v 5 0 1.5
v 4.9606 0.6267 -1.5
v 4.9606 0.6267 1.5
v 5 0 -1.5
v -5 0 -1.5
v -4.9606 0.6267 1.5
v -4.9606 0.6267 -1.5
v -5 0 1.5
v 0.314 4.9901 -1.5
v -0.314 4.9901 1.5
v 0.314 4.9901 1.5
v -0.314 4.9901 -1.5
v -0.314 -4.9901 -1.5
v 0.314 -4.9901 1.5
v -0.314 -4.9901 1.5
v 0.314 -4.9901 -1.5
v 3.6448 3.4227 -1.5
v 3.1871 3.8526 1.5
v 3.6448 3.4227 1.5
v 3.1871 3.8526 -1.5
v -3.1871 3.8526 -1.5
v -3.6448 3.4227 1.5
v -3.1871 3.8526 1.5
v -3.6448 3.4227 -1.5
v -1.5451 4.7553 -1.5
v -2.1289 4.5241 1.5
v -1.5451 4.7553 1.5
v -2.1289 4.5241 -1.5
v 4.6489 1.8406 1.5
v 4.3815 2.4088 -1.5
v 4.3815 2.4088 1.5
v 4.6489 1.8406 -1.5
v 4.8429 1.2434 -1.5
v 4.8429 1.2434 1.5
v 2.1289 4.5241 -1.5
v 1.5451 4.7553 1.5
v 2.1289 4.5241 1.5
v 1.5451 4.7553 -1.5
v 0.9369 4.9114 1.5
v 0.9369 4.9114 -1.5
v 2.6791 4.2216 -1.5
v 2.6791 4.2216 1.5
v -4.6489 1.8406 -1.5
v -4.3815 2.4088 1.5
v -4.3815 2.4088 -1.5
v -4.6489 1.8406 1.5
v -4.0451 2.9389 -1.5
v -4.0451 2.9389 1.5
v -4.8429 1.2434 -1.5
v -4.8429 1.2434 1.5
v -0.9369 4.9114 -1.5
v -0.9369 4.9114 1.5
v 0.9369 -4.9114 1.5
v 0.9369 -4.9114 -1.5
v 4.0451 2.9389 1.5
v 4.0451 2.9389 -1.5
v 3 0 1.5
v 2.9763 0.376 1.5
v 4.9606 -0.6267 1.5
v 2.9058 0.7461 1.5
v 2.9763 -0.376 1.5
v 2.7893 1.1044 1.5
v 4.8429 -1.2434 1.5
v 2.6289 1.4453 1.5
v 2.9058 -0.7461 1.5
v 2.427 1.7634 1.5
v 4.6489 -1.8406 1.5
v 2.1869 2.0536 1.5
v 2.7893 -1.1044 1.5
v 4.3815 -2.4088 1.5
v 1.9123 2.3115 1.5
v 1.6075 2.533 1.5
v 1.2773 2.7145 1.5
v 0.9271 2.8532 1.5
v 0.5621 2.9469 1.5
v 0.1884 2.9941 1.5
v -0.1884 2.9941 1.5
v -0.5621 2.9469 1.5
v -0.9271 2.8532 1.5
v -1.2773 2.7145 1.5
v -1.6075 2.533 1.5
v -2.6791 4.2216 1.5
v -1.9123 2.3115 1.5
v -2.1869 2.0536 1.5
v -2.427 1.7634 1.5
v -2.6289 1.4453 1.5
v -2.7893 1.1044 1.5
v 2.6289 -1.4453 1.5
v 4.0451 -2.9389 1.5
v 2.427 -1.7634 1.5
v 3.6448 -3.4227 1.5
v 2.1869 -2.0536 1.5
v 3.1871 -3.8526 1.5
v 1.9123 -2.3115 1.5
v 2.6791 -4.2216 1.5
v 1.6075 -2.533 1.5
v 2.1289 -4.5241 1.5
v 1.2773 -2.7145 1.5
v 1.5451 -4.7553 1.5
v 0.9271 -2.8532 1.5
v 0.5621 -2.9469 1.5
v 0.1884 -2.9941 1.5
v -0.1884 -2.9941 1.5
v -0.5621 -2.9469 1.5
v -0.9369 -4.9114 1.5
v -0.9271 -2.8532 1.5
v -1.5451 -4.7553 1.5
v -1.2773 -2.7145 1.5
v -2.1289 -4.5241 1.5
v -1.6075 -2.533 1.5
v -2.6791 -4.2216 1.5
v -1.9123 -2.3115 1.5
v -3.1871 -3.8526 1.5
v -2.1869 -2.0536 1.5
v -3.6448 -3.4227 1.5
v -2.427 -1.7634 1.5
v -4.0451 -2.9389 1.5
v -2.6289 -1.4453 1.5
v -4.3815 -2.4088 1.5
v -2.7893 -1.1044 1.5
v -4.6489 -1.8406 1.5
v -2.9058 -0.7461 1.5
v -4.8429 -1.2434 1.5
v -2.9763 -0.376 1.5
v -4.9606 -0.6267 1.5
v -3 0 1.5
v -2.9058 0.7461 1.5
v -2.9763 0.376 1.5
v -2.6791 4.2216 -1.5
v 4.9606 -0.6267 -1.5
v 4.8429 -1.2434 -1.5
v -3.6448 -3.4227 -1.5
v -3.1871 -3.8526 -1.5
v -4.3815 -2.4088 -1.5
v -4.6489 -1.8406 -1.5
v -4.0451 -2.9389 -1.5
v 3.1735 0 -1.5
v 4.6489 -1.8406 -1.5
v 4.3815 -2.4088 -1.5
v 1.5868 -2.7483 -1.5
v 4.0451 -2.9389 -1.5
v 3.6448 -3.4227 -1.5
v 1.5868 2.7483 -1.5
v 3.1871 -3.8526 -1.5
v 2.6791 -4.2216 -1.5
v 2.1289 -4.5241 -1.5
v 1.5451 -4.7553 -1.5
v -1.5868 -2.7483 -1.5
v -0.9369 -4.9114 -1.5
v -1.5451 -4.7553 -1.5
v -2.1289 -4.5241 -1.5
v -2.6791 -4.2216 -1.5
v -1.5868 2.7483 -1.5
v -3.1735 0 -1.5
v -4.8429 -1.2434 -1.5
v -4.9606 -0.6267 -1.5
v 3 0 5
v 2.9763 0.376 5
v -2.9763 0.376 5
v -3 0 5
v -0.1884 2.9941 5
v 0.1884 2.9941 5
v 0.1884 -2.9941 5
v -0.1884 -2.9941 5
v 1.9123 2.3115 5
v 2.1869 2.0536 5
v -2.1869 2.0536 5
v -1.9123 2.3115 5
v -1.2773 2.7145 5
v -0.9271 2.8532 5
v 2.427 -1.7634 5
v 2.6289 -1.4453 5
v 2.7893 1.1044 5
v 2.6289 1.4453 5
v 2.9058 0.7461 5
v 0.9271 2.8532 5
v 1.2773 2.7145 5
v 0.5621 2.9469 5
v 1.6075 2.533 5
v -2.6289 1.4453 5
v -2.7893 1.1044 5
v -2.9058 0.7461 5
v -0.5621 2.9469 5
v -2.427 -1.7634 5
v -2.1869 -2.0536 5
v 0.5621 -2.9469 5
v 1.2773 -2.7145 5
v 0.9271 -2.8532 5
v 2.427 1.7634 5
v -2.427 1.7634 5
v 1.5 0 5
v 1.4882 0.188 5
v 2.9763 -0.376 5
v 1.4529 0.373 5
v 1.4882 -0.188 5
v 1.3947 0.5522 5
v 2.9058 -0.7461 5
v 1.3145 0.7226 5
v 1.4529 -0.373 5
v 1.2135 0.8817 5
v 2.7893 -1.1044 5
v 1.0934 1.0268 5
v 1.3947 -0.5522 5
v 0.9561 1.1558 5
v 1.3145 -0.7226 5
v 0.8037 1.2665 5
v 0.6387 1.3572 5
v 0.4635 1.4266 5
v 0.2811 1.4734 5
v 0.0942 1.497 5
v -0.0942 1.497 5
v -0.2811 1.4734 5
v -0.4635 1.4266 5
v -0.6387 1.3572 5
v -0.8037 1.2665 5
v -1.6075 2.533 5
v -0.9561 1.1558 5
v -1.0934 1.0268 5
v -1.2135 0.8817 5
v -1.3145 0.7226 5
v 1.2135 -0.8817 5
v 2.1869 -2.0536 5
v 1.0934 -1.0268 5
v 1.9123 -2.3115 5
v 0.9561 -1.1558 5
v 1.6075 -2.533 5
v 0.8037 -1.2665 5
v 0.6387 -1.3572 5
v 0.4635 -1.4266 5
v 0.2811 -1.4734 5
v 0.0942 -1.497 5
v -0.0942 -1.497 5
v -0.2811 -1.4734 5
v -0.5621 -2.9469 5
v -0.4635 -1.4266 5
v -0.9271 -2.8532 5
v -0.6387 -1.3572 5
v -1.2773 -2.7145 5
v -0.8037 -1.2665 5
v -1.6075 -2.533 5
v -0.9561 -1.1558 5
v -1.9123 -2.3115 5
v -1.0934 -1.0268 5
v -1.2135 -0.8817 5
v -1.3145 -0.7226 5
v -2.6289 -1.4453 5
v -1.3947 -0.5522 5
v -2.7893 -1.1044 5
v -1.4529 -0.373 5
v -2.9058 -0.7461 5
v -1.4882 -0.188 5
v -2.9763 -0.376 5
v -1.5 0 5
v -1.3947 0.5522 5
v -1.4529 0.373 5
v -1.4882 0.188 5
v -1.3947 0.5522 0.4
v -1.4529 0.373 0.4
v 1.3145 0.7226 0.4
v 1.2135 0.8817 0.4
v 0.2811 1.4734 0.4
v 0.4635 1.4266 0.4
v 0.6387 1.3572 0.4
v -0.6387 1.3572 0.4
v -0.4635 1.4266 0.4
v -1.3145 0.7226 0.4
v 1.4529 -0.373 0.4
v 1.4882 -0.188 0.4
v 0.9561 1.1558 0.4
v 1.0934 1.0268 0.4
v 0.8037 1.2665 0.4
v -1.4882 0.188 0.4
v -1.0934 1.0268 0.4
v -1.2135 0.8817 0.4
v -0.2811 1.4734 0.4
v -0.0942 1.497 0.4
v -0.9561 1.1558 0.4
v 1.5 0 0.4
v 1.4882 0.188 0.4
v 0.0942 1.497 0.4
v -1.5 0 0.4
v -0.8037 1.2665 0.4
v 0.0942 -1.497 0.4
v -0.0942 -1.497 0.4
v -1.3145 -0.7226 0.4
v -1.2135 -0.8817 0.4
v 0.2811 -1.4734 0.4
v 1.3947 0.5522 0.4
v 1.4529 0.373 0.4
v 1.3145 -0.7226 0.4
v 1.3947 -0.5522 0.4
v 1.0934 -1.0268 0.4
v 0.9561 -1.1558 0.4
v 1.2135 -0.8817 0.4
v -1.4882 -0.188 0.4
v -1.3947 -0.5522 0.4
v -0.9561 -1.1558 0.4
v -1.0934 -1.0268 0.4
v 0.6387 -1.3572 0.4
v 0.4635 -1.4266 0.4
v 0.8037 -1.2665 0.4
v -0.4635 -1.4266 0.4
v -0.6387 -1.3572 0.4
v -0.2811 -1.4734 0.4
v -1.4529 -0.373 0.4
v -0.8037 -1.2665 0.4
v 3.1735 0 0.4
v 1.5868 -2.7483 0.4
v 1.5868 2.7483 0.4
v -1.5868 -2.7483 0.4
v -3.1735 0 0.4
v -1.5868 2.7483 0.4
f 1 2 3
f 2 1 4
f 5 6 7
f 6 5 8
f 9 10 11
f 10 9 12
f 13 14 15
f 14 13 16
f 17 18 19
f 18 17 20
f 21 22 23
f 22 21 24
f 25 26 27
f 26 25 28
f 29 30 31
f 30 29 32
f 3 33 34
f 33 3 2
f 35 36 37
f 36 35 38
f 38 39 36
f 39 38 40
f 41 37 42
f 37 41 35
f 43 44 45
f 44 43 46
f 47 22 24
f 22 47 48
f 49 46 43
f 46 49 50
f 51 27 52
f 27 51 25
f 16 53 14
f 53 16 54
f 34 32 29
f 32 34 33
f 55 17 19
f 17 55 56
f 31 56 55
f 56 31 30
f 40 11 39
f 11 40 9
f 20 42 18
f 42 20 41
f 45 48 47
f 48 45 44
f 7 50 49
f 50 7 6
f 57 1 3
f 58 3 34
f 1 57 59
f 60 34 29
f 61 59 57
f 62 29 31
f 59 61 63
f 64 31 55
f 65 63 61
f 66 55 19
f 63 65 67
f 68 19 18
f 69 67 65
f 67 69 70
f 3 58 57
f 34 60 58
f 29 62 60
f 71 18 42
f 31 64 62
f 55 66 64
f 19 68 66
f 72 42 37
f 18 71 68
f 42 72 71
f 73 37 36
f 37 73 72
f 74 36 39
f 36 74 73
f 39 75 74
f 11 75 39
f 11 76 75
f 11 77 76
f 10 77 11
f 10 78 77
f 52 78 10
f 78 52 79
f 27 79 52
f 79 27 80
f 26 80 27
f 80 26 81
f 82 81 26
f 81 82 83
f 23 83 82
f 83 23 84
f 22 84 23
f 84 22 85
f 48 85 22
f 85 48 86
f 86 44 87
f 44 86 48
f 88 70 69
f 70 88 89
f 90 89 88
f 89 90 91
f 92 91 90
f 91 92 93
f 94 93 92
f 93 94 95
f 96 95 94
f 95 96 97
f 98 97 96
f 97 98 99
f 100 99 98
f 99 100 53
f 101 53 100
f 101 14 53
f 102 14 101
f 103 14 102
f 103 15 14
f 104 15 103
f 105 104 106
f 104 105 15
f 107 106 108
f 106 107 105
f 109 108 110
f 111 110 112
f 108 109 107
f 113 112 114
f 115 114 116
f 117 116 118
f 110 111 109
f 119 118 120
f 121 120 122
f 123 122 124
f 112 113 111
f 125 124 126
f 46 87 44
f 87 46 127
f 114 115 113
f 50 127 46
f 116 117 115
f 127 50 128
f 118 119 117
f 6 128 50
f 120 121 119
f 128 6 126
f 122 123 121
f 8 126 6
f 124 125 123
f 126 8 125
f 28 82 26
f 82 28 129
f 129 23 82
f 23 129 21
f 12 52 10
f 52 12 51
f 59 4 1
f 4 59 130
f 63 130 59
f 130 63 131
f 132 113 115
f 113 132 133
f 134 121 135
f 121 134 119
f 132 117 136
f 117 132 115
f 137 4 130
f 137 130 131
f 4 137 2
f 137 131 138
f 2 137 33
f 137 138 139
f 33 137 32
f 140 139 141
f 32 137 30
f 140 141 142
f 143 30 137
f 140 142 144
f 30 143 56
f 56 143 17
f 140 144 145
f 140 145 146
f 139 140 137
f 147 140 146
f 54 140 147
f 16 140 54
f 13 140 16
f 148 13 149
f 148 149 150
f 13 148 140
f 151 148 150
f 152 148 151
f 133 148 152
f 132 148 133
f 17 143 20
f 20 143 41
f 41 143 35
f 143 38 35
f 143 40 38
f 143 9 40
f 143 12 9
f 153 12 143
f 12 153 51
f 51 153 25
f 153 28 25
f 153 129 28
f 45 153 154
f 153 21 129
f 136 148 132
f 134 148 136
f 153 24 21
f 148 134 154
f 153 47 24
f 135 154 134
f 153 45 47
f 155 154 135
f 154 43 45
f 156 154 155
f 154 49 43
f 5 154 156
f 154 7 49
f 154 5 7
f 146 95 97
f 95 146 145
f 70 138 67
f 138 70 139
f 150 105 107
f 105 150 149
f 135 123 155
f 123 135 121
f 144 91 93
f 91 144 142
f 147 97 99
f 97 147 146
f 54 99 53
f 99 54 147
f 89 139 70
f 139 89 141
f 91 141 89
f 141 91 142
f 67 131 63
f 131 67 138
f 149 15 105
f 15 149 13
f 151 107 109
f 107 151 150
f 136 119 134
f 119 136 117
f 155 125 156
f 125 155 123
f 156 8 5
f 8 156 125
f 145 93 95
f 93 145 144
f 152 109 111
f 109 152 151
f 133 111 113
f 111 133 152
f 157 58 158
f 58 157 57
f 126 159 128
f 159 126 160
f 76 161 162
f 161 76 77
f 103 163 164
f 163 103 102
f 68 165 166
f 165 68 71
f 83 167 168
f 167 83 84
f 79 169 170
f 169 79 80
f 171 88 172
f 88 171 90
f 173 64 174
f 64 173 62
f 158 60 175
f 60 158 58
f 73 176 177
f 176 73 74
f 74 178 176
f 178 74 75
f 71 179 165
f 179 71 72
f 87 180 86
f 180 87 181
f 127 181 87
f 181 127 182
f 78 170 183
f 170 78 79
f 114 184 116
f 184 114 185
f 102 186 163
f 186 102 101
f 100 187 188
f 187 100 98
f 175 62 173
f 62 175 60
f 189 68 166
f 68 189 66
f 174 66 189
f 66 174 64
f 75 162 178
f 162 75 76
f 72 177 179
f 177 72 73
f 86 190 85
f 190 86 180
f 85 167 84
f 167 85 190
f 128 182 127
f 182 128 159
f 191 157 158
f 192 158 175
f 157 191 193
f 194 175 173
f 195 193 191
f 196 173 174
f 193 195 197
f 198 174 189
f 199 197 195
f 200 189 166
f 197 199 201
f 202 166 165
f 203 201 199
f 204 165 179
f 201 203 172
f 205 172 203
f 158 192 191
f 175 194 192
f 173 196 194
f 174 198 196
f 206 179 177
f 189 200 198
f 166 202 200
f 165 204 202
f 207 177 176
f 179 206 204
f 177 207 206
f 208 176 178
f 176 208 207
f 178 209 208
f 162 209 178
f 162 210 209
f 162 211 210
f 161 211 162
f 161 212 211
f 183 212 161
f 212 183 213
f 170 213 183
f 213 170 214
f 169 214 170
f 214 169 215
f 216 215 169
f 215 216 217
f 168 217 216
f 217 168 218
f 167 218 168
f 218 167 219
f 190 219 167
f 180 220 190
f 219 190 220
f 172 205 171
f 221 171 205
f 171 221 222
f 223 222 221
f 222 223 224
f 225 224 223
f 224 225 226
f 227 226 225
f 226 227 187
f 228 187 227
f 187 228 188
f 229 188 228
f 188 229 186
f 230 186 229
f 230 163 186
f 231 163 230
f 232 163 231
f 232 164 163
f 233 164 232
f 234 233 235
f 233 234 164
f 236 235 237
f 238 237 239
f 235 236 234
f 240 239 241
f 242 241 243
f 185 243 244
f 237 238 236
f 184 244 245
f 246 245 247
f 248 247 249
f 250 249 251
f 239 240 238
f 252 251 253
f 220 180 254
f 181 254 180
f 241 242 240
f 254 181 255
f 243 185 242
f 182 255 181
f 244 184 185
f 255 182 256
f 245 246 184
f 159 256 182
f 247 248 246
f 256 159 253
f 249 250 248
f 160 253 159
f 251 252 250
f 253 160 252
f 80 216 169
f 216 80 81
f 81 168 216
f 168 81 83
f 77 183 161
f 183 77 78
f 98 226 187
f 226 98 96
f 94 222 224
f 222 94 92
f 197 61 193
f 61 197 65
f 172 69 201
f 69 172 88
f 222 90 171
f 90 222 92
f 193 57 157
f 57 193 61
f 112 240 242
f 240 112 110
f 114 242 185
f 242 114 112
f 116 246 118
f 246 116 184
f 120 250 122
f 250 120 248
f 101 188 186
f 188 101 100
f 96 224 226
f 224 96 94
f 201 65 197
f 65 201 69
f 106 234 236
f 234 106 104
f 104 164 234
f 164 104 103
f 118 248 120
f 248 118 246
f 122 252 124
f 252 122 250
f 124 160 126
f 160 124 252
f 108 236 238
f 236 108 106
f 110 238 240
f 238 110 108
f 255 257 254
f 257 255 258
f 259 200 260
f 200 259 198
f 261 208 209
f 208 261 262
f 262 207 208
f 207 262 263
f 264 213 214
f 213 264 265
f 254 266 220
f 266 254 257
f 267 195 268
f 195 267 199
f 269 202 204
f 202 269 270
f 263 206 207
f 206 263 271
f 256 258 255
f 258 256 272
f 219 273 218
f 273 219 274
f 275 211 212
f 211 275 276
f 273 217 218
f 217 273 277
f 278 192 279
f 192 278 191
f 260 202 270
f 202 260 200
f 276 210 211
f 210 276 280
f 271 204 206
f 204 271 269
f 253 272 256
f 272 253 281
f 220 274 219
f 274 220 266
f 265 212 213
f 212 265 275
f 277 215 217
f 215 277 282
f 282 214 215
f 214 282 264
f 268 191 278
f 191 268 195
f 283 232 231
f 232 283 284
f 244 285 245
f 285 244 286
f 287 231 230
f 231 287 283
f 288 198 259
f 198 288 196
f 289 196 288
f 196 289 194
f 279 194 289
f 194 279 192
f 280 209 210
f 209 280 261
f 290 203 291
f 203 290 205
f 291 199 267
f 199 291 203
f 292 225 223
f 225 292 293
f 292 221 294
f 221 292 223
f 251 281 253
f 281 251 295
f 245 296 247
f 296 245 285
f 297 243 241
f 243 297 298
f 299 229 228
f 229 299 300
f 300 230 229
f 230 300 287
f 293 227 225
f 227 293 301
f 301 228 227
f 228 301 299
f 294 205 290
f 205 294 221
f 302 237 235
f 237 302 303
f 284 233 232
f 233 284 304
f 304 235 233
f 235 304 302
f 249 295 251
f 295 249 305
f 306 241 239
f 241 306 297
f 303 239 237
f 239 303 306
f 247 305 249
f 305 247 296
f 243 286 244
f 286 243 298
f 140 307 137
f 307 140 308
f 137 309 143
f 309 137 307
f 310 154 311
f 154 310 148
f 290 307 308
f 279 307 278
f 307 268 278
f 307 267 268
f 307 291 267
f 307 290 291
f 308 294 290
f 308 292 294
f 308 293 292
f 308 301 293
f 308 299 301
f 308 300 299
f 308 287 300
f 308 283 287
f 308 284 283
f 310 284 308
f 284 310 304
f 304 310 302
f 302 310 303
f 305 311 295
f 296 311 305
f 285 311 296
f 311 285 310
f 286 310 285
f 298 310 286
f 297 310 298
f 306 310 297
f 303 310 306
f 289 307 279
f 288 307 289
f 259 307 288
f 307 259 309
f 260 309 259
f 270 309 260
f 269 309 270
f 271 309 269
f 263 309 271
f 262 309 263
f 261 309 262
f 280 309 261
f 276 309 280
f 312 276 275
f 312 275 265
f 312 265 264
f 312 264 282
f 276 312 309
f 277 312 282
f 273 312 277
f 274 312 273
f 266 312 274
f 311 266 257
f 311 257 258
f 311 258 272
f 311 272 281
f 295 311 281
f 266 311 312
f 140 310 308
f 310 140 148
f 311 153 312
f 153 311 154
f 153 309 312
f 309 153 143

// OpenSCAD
$fn = 50;


difference() {
	union() {
		translate(v = [0, 0, -1.5000000000]) {
			rotate(a = [0, 0, 0]) {
				cylinder(h = 3, r = 5.0000000000);
			}
		}
		translate(v = [0, 0, -1.5000000000]) {
			rotate(a = [0, 0, 0]) {
				cylinder(h = 6.5000000000, r = 3.0000000000);
			}
		}
	}
	union() {
		translate(v = [0, 0, -125.0000000000]) {
			rotate(a = [0, 0, 0]) {
				cylinder(h = 250, r = 1.5000000000);
			}
		}
		translate(v = [0, 0, -2.1000000000]) {
			rotate(a = [0, 0, 0]) {
				#translate(v = [0, 0, 0]) {
					rotate(a = [0, 0, 0]) {
						linear_extrude(height = 2.5000000000) {
							polygon(points = [[3.1735000000, 0.0000000000], [1.5867500000, 2.7483316189], [-1.5867500000, 2.7483316189], [-3.1735000000, 0.0000000000], [-1.5867500000, -2.7483316189], [1.5867500000, -2.7483316189]]);
						}
					}
				}
			}
		}
	}
}
